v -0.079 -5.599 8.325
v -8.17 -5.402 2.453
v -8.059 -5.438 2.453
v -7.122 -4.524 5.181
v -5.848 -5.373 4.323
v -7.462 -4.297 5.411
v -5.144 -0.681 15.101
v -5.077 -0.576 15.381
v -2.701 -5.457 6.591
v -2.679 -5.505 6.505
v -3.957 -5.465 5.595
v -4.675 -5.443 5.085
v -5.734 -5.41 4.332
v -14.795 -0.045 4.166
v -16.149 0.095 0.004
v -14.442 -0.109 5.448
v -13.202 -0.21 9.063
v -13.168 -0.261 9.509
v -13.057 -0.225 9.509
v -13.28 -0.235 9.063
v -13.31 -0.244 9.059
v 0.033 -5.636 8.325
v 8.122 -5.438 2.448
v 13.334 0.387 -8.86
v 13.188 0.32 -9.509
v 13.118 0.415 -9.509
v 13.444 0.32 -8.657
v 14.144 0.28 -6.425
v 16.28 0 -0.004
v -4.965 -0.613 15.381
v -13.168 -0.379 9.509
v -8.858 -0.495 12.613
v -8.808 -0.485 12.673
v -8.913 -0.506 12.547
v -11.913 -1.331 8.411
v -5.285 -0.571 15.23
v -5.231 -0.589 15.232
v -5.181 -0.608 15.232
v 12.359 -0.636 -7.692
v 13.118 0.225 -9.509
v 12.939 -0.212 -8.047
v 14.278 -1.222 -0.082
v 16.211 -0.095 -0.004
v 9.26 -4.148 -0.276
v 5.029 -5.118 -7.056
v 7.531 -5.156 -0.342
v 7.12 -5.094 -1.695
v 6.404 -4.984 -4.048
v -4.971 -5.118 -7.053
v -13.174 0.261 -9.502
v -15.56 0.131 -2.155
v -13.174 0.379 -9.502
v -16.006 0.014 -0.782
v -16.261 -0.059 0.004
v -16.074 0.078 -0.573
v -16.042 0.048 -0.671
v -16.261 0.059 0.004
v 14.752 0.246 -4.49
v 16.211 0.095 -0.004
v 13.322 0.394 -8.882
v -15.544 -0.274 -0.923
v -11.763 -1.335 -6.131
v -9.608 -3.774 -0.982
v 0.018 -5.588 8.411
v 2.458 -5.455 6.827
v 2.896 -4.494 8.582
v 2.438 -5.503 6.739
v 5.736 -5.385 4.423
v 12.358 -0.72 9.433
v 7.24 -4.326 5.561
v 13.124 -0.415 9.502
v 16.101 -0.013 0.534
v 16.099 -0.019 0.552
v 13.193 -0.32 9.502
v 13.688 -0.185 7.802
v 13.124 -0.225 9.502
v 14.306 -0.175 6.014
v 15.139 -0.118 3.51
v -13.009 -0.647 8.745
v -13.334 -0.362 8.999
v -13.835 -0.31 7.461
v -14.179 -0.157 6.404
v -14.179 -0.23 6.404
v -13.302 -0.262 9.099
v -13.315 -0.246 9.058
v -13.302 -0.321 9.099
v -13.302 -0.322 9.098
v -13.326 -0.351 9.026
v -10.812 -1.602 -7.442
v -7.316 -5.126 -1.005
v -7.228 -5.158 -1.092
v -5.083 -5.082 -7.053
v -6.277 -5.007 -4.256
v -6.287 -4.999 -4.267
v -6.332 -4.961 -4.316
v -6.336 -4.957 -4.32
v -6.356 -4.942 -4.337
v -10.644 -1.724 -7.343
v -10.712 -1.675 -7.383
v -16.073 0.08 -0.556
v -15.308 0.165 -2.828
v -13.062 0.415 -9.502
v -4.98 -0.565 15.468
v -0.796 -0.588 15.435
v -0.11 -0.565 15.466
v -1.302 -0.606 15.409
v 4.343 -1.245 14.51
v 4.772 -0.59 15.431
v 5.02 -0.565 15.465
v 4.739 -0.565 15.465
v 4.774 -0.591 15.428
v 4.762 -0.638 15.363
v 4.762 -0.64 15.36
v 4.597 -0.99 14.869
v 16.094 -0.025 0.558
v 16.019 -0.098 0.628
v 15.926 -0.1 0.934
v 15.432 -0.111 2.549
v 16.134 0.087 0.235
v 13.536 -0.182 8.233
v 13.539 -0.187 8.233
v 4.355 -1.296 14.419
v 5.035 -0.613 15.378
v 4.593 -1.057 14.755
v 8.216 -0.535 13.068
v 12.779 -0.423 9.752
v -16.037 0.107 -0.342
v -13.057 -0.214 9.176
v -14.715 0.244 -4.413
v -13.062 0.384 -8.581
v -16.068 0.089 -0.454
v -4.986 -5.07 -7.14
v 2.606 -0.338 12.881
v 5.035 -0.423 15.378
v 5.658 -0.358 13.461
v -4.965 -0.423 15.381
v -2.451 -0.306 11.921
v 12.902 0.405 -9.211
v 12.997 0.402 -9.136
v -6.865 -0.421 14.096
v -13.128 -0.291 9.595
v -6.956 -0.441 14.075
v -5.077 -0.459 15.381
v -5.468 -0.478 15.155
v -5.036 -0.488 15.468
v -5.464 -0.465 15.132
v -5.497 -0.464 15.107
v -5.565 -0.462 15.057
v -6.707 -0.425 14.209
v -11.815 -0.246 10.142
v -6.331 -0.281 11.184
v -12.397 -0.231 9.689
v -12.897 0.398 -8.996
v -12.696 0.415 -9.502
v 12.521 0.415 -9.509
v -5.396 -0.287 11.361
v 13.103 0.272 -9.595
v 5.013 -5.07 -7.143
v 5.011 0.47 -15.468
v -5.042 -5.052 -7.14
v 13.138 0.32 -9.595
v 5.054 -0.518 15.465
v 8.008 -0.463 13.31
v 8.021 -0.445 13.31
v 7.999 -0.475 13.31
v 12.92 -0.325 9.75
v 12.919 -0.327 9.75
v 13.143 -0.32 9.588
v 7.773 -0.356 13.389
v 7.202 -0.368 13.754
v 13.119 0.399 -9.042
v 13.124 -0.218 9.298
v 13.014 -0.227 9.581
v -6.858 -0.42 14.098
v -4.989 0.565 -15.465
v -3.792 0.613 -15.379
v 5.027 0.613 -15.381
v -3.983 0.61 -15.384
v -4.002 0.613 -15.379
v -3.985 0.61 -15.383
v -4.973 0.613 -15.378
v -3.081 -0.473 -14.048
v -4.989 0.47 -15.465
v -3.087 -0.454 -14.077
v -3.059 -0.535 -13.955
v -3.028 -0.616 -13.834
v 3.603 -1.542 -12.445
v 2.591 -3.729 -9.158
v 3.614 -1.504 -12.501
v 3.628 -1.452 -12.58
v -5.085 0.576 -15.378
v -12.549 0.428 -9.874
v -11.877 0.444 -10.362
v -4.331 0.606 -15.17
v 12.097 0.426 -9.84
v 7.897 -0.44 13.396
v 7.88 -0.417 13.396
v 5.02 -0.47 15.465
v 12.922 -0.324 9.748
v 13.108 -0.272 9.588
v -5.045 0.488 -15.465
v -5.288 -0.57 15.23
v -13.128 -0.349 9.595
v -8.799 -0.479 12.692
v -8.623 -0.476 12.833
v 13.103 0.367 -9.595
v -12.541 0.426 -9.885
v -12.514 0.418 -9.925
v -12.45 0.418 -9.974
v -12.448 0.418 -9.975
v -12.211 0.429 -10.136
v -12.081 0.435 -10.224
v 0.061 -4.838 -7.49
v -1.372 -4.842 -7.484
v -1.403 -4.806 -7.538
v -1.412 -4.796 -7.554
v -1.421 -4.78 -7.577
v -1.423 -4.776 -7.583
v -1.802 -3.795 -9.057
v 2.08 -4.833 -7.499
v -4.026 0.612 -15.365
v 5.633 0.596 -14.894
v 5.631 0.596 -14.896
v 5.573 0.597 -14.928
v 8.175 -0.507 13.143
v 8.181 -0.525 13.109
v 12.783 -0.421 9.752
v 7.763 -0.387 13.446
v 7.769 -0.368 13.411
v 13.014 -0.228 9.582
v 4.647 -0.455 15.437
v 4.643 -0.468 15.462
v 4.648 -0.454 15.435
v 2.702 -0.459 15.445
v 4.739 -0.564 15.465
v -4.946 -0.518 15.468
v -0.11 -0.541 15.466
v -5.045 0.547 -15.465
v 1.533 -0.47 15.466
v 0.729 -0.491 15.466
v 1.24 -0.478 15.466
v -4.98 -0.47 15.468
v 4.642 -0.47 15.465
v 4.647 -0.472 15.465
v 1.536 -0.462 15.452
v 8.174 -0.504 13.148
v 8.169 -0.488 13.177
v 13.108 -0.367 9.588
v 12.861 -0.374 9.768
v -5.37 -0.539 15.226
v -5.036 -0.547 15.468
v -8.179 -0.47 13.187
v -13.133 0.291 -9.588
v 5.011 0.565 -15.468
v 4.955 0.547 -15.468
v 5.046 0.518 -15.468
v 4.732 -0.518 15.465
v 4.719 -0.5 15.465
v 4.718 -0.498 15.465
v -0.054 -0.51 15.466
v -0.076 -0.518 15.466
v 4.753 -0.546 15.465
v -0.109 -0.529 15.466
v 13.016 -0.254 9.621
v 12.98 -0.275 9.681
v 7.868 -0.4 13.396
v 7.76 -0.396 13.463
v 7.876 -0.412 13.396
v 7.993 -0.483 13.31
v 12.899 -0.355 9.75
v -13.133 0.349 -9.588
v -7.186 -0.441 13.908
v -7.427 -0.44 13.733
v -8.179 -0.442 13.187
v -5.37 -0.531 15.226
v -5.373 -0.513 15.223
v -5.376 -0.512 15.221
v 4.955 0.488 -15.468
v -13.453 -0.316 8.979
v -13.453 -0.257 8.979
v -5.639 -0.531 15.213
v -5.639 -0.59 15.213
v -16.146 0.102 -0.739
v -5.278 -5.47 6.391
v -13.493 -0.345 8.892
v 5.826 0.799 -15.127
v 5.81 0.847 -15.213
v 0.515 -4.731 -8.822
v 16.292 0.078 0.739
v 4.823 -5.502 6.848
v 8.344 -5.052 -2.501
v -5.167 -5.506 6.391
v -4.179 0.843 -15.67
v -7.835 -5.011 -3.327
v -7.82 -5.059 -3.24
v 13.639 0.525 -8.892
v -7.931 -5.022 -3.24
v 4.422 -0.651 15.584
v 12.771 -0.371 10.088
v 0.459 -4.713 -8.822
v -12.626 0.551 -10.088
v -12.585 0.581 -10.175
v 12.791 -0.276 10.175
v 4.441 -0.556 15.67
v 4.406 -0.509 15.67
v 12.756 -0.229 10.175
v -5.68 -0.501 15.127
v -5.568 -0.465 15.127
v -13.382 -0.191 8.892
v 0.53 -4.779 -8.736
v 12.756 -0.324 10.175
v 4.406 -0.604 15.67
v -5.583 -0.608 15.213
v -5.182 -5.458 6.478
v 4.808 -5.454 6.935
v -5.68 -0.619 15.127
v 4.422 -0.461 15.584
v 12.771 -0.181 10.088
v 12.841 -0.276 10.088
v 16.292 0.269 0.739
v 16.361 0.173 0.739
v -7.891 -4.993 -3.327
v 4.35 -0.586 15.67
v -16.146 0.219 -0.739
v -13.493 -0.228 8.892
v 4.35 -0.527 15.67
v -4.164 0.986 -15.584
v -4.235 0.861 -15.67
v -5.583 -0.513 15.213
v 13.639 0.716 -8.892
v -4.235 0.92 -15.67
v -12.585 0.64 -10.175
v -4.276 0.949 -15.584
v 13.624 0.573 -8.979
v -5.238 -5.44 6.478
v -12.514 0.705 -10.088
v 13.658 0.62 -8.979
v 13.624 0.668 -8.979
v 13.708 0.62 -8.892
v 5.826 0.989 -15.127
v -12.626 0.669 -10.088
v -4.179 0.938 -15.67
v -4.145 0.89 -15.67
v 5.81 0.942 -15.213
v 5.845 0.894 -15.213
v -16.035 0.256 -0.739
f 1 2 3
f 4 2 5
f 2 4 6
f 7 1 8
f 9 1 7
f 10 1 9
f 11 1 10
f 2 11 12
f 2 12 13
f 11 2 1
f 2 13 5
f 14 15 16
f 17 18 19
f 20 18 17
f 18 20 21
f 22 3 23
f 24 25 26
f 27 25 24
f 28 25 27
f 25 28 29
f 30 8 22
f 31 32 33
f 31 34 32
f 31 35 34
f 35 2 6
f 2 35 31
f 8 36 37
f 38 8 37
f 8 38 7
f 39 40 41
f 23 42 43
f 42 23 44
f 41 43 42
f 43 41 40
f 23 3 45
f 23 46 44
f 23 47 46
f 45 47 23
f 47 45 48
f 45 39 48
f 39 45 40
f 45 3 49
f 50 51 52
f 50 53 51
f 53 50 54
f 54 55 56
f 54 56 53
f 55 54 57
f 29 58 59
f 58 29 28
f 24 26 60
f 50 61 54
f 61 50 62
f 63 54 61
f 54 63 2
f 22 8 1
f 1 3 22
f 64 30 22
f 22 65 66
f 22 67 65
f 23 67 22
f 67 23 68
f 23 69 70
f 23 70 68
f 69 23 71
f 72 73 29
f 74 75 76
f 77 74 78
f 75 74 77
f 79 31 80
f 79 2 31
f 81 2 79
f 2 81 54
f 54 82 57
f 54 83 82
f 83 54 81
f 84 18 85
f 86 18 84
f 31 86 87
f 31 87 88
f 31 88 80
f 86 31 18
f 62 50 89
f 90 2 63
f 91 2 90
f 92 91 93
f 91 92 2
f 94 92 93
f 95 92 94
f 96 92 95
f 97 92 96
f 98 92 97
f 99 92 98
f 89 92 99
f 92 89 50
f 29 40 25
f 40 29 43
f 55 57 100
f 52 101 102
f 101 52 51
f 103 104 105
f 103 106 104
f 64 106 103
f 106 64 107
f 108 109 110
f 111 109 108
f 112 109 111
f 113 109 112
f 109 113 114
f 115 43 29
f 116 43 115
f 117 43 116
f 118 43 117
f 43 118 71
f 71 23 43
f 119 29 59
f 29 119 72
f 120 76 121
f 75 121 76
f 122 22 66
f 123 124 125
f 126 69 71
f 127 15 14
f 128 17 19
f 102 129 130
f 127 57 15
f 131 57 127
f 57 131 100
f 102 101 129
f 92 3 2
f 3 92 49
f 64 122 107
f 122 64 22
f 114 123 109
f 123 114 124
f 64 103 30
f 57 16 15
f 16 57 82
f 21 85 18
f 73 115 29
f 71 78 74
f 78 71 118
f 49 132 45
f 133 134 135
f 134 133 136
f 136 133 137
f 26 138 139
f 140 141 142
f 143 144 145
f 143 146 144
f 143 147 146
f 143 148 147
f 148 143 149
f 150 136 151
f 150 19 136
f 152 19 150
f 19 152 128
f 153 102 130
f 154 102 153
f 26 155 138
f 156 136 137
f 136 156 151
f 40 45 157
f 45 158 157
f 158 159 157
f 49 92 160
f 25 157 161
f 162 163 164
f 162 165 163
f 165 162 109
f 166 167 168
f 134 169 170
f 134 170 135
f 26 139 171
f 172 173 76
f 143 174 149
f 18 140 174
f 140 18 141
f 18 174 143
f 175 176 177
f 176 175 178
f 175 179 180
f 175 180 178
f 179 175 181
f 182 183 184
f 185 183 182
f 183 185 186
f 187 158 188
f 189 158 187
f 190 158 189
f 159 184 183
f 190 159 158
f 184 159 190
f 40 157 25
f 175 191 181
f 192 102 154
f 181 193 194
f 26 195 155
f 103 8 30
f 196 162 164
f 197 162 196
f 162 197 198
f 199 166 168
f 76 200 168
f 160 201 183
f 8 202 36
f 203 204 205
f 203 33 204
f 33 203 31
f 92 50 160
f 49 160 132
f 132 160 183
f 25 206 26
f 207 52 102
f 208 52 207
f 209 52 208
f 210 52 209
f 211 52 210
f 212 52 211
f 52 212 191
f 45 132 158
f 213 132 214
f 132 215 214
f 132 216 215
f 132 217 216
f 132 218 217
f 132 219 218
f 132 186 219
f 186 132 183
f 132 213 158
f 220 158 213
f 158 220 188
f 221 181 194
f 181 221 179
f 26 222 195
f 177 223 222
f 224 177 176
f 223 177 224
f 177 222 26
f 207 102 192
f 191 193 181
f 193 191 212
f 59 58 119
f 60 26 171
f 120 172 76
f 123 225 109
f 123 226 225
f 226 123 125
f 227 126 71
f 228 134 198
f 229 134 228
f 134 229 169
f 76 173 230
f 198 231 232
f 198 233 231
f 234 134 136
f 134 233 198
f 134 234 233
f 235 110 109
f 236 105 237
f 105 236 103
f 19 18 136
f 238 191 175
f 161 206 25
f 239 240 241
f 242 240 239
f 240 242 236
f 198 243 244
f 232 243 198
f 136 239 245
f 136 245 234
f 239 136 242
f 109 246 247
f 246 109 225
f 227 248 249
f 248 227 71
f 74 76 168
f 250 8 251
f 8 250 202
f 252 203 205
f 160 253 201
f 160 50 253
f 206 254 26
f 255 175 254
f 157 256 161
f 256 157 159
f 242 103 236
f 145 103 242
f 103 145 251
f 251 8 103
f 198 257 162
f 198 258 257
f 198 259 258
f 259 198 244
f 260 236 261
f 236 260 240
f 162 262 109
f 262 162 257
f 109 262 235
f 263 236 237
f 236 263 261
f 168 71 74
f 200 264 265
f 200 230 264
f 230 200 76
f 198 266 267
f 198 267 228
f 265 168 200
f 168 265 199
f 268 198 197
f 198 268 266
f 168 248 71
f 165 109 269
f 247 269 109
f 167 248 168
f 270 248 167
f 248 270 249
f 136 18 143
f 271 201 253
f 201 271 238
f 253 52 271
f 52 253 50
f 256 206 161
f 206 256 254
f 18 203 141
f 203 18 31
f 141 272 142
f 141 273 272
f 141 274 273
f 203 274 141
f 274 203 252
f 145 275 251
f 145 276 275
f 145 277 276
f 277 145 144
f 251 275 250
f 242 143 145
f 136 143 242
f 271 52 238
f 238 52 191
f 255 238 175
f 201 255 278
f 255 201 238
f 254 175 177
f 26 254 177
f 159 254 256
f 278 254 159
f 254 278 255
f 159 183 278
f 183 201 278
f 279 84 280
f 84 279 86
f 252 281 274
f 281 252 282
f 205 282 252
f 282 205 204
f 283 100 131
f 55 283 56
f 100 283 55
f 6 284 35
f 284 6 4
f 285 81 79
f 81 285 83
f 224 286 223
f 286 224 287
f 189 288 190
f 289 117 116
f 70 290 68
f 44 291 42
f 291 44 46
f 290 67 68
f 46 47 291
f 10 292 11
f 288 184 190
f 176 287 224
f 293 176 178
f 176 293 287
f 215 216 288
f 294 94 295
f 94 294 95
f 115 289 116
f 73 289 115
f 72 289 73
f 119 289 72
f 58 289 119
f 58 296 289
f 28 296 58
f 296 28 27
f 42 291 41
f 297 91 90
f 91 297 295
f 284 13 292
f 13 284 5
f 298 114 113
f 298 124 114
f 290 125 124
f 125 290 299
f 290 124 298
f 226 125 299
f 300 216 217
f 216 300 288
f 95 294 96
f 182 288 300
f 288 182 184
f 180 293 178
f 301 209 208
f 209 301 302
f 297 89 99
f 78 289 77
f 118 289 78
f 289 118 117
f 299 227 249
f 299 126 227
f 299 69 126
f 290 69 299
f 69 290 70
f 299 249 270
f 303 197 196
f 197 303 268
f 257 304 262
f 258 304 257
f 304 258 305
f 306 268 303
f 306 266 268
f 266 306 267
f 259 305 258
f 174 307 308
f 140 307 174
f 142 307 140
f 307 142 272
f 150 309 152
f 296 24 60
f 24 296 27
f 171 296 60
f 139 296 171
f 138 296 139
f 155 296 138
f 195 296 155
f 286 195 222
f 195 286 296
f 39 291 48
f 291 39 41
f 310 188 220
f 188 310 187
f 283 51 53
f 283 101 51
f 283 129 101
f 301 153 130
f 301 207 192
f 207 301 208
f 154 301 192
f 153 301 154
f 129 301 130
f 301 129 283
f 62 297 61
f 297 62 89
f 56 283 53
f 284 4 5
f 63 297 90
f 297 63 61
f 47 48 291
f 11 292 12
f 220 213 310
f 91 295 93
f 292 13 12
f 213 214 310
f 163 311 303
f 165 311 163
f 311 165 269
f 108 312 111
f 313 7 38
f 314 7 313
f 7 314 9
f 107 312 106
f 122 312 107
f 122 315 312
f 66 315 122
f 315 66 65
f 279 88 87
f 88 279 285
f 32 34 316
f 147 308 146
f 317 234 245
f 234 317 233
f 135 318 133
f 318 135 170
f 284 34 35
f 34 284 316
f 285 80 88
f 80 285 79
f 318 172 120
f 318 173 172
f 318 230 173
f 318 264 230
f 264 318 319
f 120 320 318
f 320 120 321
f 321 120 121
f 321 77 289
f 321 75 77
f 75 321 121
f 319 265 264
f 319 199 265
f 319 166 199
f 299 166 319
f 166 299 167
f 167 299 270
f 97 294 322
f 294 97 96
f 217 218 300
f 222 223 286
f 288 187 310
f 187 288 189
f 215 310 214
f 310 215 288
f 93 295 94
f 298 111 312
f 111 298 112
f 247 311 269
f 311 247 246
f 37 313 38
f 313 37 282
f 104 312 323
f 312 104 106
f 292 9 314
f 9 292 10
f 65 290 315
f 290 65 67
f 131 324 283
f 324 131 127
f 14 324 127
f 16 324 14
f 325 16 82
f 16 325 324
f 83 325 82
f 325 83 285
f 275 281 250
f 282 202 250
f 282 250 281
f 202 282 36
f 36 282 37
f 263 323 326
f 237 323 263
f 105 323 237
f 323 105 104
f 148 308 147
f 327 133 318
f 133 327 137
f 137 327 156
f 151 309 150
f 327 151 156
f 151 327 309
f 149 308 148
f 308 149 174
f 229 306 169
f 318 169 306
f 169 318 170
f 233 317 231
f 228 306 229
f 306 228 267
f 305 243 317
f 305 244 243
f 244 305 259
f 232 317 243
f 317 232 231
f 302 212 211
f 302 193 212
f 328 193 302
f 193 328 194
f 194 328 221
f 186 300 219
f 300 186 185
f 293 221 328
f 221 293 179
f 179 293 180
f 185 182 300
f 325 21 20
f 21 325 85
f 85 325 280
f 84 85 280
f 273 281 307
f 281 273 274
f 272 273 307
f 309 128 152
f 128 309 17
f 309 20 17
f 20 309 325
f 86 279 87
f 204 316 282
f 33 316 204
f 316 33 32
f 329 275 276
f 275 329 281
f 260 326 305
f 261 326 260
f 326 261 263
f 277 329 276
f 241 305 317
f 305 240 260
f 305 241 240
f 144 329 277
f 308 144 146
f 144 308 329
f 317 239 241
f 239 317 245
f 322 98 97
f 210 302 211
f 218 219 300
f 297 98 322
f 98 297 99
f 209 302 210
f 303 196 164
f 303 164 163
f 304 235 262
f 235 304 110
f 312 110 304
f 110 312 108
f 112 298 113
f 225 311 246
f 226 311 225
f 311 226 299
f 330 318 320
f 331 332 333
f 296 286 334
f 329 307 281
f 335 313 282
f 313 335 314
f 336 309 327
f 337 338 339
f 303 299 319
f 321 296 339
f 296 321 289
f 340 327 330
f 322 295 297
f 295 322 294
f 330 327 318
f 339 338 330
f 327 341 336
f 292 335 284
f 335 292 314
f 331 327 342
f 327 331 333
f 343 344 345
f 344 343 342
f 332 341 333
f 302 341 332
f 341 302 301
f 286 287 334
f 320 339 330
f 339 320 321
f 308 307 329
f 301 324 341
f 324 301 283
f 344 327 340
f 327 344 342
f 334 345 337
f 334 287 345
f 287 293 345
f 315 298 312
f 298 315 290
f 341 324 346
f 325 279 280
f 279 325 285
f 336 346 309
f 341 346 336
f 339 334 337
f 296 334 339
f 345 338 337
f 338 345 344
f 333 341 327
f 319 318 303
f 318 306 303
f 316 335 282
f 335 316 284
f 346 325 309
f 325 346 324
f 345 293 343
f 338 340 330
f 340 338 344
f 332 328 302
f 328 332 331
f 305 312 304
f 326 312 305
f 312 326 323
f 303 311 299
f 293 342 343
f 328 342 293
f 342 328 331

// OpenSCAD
// Auto-generated OpenSCAD file

    inner_points = 10*[[-1.6065576544292892, 0.016072137049278255, -0.07392451573739472], [1.6261308566625277, 0.017340658440594285, 0.07392451573739472], [-1.341249269607953, -0.02863275383436257, 0.8892021289332714], [-1.2544774711527342, 0.061019293960932294, -1.0088145079982527], [1.2740506733859727, -0.027606498471059754, 1.0088145079982527], [1.3608224718411914, 0.06204554932423511, -0.8892021289332714], [-0.5598911021901387, -0.0560196298357948, 1.512683783220194], [-0.4194913830246398, 0.08904043065802253, -1.5583716465477804], [0.43906458525787834, -0.055627635168149996, 1.5583716465477804], [0.5794643044233774, 0.08943242532566734, -1.512683783220194], [-0.7850562096059552, -0.49636791351195547, -0.3240056440417419], [0.8312880459399532, -0.4957336528162974, -0.25008112830434714], [-0.5197478247846188, -0.5410728043955961, 0.6391210006289243], [0.4792078626633983, -0.5406808097279513, 0.6848088639565106], [0.04992987852213929, -0.4683467768148652, -0.87356278259127]];

    outer_points = 10*[[1.6180339268989221, 0.0, -0.00044738568277260886], [-1.6180339268989221, 0.0, 0.00044738568277260886], [1.3087541264448814, 0.031991353396446154, -0.950880212524824], [1.309279762228037, -0.031991353396446154, 0.9501563272840178], [-1.309279762228037, 0.031991353396446154, -0.9501563272840178], [-1.3087541264448814, -0.031991353396446154, 0.950880212524824], [0.49957473260557367, 0.051763097141559244, -1.5381091174121158], [0.5004252291684228, -0.051763097141559244, 1.5378326178540822], [-0.5004252291684228, 0.051763097141559244, -1.5378326178540822], [-0.49957473260557367, -0.051763097141559244, 1.5381091174121158], [0.8090847148034257, -0.5342757895268477, 0.24480871103153803], [-0.8089492120954964, -0.5342757895268477, 0.24525609671431062], [0.499804914349385, -0.5022844361304015, -0.7056241158105132], [-0.5001950474246115, -0.5022844361304015, -0.7053476162524797], [0.0002301817438113309, -0.5540475332719608, 0.8324850016016027]];

    // Convex hull for inner set (I)
    module inner_hull() {
        hull() {
            for (p = inner_points) {
                translate(p) sphere(r=0.1);
            }
        }
    }

    // Convex hull for outer set (O) minus inner hull (O \ I)
    module outer_minus_inner() {
        difference() {
            hull() {
                for (p = outer_points) {
                    translate(p) sphere(r=0.1);
                }
            }
            inner_hull(); // Subtract inner hull
        }
    }

    // Convex hull for outer set (O) minus all translated inner hulls
    module outer_minus_AllTranslationInner() {
        difference() {
            hull() {
                for (p = outer_points) {
                    translate(p) sphere(r=0.1);
                }
            }
            hull() {
                translate([0,0,50]) inner_hull();
                translate([0,0,-50]) inner_hull();
            }; // Subtract translated inner hulls
        }
    }

    // Difference between outer_minus_inner and outer_minus_AllTranslationInner
    module outer_minus_inner_diff() {
        difference() {
            // Outer minus inner
            difference() {
                hull() {
                    for (p = outer_points) {
                        translate(p) sphere(r=0.1);
                    }
                }
                inner_hull();
            }

            // Subtract Outer minus AllTranslationInner
            difference() {
                hull() {
                    for (p = outer_points) {
                        translate(p) sphere(r=0.1);
                    }
                }
                hull() {
                    translate([0,0,50]) inner_hull();
                    translate([0,0,-50]) inner_hull();
                };
            }
        }
    }

    // Rendering all with colors applied
    color([1, 0, 0, 0.5]) inner_hull(); // Transparent red
    color([0, 1, 0, 1]) outer_minus_AllTranslationInner(); // Opaque green
    color([1, 1, 0, 1]) outer_minus_inner_diff(); // Opaque yellow
    
